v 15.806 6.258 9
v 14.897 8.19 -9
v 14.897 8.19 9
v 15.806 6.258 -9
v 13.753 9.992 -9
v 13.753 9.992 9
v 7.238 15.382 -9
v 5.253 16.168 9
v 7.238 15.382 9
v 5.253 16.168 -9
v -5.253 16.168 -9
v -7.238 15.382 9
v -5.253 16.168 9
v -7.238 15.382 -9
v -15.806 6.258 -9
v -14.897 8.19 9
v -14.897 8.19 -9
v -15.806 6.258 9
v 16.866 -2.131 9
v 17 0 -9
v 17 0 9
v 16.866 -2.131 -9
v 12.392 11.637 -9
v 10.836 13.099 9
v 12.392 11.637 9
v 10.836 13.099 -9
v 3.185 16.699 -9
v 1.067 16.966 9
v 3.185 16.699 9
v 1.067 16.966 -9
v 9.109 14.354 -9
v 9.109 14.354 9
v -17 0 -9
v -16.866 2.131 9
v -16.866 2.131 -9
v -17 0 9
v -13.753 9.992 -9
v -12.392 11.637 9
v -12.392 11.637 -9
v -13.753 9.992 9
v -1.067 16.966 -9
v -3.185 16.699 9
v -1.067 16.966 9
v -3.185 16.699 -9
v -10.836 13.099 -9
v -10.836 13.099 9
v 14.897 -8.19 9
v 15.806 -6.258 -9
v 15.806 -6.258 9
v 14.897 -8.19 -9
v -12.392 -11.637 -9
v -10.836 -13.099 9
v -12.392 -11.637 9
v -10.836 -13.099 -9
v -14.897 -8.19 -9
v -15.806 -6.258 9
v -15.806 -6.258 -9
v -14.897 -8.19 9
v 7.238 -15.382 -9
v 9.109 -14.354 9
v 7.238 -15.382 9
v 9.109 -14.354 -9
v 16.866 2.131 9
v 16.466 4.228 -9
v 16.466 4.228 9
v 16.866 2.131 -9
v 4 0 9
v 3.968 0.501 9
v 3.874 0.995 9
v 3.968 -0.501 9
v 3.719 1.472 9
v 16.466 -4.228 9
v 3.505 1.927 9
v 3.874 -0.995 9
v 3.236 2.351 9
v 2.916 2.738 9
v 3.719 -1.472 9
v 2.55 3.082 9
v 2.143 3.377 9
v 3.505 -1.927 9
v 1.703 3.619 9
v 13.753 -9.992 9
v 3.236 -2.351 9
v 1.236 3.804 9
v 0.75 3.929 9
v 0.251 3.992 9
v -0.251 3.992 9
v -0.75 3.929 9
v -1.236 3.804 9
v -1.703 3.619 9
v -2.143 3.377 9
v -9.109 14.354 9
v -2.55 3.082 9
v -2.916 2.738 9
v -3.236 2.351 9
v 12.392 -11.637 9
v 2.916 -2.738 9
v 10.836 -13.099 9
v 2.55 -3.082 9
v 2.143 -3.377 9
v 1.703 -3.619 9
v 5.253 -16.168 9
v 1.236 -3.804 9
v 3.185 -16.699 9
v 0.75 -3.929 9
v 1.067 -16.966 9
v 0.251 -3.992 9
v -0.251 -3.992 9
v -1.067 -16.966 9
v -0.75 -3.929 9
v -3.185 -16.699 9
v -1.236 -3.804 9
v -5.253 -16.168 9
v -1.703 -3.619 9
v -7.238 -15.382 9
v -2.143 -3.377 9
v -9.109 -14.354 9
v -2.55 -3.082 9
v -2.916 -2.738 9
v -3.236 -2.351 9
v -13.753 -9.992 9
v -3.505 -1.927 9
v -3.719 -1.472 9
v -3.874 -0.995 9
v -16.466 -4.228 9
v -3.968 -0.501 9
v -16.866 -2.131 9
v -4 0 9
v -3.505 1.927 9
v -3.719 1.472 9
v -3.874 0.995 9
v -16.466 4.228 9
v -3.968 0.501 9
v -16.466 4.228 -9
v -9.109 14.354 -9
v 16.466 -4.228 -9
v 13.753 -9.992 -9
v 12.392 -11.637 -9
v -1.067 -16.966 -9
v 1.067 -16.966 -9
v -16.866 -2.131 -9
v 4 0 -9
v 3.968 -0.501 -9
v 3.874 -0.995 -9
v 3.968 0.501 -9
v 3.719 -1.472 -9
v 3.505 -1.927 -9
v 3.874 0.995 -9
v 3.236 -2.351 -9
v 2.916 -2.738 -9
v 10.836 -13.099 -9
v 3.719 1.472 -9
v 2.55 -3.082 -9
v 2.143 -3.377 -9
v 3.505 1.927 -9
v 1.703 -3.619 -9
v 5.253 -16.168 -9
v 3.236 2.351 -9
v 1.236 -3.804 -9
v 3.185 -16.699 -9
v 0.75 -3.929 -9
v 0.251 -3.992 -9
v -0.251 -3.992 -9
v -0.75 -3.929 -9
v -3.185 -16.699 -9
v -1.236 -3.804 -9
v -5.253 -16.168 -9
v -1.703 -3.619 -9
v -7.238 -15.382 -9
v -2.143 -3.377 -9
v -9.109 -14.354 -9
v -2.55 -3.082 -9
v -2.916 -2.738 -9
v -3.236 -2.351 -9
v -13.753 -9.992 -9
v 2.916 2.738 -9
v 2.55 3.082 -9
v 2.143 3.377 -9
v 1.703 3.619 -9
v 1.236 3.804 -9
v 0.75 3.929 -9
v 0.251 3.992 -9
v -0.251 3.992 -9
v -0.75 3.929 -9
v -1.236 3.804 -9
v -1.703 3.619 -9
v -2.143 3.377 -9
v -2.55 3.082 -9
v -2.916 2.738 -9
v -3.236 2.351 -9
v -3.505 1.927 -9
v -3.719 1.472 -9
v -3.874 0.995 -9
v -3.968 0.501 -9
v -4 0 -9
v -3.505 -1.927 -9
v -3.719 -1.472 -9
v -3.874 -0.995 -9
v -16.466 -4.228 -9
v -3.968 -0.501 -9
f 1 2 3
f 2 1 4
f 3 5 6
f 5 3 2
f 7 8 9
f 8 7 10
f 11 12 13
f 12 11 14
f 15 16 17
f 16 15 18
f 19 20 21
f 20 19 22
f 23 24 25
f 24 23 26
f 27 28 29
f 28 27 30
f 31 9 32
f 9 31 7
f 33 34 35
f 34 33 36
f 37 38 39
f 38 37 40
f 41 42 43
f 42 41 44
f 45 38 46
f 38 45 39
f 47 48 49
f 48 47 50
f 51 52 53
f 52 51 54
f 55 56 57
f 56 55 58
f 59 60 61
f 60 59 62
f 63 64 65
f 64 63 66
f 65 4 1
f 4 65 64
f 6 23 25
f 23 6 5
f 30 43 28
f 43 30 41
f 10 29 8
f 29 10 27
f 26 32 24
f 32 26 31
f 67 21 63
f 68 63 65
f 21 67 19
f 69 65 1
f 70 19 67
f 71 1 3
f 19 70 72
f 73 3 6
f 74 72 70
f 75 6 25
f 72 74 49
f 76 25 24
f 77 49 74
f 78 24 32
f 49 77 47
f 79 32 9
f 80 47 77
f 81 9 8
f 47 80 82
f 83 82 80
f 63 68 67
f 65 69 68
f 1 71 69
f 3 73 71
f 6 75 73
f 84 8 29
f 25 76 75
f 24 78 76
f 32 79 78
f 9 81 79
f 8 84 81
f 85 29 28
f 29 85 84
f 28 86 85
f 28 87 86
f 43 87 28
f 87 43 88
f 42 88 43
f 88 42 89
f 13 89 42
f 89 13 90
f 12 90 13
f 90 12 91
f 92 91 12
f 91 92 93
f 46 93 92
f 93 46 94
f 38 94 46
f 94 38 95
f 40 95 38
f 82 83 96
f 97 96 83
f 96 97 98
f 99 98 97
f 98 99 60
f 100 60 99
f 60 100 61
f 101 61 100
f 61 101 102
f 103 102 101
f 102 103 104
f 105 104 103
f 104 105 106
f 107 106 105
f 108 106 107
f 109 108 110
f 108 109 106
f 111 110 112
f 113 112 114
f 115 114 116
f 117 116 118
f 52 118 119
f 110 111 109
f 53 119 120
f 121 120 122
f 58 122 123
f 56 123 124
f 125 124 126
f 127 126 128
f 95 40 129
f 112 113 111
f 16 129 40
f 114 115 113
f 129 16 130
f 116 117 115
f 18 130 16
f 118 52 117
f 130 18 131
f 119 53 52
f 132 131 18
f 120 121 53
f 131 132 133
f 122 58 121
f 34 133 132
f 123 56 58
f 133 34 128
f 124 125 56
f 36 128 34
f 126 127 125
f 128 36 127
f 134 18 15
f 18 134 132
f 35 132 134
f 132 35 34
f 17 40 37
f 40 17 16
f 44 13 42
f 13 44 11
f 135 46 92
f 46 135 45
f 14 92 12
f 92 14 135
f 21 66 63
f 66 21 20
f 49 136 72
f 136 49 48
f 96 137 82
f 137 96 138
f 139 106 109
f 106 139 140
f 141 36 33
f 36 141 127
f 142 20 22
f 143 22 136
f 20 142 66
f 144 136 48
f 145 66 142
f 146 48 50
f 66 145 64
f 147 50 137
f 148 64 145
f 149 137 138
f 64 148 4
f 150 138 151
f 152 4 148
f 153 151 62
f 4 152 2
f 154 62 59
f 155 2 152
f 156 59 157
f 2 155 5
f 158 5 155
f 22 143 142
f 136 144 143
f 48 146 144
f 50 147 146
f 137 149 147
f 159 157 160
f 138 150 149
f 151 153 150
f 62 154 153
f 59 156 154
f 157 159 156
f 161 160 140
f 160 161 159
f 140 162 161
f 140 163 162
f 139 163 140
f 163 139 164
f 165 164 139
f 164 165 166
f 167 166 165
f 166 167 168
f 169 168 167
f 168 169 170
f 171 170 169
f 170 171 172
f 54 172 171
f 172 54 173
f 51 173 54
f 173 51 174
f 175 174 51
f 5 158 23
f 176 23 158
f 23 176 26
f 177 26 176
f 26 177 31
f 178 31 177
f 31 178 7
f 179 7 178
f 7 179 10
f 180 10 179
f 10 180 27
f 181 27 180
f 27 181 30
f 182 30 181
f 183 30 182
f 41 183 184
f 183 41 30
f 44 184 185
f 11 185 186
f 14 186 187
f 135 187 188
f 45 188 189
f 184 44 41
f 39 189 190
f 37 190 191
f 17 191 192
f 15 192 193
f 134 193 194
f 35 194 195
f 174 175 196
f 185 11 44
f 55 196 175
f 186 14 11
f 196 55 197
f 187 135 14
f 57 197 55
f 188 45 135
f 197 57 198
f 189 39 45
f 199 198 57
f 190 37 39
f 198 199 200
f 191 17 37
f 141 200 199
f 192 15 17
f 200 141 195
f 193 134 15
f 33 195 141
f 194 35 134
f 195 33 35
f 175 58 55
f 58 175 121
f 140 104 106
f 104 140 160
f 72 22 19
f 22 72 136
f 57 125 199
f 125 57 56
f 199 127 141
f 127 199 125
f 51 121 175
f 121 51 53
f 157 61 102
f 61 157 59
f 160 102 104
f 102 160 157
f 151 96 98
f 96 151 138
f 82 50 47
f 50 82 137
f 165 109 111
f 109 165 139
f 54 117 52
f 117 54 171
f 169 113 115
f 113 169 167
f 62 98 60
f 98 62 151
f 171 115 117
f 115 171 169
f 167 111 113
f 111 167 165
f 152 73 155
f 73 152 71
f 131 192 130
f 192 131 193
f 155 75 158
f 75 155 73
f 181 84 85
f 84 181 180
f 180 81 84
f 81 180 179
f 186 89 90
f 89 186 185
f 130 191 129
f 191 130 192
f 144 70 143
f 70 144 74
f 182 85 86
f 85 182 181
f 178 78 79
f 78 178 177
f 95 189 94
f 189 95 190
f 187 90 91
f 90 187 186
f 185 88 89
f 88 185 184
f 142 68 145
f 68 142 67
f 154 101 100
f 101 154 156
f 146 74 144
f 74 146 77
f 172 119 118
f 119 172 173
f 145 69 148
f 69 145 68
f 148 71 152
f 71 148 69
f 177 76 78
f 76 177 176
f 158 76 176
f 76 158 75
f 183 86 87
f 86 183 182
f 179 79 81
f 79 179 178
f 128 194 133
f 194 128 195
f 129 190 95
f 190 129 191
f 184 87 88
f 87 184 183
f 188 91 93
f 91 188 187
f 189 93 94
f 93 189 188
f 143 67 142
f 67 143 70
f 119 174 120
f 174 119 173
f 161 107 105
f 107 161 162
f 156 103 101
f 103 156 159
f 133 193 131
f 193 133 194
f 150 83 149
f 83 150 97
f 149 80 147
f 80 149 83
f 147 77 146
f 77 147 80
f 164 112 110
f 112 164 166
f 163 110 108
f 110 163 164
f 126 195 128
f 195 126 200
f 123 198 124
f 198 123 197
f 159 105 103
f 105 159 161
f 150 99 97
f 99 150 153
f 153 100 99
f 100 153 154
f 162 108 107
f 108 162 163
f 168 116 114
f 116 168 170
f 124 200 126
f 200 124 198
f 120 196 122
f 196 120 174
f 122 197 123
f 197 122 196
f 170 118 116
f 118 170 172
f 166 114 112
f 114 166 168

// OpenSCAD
$fn = 50;


difference() {
	union() {
		translate(v = [0, 0, -9.0000000000]) {
			cylinder(h = 18, r = 17.0000000000);
		}
	}
	union() {
		translate(v = [0, 0, -100.0000000000]) {
			cylinder(h = 200, r = 4);
		}
	}
}
